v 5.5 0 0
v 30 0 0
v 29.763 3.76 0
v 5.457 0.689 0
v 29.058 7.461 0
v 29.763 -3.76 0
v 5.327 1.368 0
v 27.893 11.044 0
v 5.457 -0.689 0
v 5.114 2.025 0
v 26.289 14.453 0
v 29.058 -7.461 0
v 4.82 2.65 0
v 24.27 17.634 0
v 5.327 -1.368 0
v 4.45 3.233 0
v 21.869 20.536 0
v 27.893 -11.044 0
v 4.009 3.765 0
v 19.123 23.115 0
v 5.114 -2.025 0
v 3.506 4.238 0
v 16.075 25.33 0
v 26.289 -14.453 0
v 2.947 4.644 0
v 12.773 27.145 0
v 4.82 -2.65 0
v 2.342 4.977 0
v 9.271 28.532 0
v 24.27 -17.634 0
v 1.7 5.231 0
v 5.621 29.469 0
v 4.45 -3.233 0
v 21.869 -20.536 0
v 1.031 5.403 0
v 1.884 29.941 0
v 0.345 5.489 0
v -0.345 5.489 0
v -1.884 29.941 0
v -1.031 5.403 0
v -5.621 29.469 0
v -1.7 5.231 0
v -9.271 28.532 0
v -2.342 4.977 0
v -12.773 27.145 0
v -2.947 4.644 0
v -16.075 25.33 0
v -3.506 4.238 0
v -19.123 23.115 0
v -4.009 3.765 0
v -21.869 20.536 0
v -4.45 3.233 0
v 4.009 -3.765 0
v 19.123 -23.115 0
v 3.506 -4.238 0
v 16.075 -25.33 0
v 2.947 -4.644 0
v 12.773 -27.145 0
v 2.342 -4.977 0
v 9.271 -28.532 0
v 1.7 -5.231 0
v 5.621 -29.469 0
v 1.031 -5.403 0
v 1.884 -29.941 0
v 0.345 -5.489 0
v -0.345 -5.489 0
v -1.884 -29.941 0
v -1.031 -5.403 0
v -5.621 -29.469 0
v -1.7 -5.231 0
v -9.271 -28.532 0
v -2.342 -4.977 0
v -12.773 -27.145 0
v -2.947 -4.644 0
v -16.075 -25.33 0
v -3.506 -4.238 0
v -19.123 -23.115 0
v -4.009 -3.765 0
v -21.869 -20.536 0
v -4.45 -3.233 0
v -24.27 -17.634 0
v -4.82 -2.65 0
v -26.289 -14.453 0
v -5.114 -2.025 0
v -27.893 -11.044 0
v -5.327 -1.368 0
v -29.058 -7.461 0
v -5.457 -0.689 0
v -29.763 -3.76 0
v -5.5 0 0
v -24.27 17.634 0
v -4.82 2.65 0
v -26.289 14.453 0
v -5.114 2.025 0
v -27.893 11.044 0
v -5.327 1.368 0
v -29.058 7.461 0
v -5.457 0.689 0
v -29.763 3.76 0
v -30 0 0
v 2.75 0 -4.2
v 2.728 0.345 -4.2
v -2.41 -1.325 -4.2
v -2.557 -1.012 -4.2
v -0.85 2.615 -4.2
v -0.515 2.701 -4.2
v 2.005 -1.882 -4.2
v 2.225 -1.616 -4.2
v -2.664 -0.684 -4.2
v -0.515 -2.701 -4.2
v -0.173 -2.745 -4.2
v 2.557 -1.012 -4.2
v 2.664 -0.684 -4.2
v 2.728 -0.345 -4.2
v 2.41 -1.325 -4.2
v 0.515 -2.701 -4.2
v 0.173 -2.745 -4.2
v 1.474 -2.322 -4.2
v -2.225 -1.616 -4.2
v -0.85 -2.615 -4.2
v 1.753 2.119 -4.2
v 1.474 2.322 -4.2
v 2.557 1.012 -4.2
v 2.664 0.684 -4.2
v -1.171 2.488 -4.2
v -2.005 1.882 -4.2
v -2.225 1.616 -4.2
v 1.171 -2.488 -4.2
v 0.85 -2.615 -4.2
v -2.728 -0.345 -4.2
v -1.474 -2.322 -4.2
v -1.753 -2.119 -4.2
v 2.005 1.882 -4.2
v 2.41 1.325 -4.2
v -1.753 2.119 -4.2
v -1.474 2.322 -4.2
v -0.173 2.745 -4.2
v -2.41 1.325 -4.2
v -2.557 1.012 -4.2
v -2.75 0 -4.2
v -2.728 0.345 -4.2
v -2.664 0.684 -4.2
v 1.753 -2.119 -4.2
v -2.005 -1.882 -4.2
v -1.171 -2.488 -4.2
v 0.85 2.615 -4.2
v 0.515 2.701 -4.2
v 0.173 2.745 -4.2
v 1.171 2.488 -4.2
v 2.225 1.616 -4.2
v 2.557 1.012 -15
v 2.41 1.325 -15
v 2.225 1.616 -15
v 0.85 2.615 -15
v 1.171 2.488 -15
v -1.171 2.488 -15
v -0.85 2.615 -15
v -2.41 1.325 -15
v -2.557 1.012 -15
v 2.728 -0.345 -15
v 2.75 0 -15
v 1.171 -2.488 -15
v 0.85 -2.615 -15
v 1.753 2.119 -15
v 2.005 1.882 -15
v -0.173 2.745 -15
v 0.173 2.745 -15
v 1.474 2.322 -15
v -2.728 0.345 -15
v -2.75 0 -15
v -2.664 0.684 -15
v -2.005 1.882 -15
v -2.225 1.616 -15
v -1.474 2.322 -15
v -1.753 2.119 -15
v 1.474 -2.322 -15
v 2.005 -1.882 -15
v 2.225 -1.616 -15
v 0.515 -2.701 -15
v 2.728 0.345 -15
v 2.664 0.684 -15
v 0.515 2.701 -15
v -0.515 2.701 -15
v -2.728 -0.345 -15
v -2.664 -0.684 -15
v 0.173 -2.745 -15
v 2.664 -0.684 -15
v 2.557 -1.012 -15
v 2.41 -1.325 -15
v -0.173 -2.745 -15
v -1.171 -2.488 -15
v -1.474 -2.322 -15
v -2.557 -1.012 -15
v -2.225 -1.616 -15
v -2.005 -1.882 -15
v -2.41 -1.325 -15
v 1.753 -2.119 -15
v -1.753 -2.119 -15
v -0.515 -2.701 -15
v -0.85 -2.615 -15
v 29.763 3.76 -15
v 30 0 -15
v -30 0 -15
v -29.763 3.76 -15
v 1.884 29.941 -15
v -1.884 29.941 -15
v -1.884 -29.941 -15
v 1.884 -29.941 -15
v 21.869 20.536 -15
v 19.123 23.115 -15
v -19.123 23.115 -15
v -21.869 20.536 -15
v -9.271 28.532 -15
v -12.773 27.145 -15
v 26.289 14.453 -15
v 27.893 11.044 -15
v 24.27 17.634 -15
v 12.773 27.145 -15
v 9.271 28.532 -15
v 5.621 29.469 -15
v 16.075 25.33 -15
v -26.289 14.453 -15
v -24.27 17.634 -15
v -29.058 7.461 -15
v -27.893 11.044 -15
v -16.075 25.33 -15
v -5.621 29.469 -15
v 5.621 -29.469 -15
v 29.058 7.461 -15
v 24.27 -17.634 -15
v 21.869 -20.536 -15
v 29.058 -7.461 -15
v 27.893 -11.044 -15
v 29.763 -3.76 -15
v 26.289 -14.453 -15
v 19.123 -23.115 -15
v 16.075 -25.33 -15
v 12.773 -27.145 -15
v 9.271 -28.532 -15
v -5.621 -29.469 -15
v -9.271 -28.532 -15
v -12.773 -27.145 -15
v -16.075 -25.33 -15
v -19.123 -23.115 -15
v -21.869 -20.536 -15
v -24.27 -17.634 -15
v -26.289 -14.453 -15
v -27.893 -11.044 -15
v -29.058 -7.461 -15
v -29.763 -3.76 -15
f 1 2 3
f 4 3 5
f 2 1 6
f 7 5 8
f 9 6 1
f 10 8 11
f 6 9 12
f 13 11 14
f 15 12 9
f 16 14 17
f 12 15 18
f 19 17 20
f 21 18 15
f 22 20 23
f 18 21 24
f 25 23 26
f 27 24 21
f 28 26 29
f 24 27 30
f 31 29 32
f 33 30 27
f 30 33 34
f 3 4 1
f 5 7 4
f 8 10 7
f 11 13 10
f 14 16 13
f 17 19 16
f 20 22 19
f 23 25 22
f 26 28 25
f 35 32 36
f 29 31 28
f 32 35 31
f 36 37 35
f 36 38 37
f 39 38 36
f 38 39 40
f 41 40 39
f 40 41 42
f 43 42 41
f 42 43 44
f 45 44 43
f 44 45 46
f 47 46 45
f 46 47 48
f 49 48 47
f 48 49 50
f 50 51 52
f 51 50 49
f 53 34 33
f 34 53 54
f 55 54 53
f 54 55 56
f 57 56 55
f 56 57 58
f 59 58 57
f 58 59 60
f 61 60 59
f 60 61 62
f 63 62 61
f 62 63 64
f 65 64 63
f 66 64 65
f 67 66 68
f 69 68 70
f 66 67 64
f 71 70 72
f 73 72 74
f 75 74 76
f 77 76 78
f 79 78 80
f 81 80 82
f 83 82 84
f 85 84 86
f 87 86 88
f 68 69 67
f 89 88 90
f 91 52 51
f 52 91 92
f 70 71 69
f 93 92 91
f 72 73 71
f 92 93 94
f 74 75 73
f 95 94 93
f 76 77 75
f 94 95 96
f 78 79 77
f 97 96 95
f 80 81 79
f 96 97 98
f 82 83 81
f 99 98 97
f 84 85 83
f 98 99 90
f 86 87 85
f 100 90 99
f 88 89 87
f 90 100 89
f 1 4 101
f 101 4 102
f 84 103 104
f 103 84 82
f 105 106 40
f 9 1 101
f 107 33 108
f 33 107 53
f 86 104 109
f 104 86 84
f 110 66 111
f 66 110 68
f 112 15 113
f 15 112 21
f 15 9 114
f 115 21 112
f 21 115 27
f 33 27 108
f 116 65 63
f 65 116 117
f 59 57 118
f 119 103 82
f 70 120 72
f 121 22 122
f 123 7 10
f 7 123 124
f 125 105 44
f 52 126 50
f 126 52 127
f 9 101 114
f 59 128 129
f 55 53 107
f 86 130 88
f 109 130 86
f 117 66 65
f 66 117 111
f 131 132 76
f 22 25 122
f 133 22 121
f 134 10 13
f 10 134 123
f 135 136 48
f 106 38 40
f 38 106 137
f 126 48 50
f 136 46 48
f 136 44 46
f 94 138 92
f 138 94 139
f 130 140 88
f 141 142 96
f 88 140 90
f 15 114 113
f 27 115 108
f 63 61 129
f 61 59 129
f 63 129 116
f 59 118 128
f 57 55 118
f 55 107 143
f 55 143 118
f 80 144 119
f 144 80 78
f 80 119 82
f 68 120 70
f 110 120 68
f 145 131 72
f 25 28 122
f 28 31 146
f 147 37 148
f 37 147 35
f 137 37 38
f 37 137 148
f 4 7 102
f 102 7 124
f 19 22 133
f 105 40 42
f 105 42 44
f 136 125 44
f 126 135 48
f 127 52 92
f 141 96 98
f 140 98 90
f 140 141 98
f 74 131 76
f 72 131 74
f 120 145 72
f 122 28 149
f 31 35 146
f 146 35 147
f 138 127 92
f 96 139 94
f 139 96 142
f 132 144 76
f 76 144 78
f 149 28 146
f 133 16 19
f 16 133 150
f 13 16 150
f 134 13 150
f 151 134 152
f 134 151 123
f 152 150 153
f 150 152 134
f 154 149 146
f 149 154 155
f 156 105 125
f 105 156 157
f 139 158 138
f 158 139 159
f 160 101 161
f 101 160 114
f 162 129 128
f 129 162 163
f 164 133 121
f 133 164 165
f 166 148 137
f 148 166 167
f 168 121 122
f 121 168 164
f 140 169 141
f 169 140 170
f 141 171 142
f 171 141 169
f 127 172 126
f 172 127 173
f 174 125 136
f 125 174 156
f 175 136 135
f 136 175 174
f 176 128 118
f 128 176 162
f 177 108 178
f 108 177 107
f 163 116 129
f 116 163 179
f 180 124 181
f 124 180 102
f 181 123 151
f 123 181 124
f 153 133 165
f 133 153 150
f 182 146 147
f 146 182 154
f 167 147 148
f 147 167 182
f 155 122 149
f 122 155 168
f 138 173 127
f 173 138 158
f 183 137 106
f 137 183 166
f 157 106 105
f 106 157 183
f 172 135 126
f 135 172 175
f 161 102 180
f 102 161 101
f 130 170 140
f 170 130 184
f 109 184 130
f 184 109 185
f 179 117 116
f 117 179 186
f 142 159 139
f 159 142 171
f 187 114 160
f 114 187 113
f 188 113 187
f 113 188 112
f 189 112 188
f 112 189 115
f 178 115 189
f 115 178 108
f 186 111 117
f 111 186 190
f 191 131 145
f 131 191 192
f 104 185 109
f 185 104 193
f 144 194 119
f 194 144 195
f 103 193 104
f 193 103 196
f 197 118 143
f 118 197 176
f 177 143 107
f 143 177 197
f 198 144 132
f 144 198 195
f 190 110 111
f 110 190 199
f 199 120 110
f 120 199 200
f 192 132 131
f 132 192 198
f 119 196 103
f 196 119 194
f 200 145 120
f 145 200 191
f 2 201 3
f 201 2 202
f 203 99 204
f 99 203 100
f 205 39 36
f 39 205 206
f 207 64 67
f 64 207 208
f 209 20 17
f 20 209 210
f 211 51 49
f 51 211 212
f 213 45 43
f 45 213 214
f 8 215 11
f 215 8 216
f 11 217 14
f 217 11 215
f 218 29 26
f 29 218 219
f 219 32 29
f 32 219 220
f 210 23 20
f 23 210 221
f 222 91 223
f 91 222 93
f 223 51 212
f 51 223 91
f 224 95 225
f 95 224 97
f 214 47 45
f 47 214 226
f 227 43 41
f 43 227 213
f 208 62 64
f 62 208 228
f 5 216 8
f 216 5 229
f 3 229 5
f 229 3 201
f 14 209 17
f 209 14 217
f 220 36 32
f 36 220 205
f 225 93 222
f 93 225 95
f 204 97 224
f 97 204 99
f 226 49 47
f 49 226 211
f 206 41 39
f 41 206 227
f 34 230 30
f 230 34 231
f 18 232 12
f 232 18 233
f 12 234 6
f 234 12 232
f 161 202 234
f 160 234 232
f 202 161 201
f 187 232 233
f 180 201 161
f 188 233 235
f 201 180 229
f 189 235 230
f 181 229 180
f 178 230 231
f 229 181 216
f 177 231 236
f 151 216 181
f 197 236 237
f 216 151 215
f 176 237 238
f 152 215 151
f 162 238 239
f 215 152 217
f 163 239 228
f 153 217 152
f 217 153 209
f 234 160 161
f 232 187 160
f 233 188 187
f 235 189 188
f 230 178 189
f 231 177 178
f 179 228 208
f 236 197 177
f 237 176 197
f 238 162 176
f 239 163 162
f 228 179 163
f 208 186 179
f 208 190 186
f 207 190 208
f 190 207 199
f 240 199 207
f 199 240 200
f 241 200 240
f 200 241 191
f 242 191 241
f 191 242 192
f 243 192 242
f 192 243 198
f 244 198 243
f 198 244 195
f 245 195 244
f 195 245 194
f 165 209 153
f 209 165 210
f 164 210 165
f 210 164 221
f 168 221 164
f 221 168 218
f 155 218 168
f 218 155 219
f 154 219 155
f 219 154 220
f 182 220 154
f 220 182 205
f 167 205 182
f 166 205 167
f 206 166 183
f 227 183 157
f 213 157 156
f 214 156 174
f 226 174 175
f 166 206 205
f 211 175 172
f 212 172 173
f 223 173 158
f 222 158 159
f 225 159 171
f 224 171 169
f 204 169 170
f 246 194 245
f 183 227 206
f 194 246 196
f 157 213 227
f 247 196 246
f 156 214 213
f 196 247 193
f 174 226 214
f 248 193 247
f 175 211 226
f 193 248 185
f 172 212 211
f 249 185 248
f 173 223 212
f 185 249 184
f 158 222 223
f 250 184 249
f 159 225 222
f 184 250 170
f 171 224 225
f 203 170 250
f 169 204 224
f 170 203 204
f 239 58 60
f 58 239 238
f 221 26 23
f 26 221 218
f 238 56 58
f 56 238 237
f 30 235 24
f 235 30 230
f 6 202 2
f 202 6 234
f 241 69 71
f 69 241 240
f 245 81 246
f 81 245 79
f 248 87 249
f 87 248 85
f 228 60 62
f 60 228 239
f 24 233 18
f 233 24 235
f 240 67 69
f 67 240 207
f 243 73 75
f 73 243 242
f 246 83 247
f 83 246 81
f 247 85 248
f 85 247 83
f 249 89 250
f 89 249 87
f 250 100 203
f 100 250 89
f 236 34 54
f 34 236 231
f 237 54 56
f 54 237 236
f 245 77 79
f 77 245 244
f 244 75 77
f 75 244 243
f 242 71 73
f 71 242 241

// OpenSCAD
$fn = 50;


difference() {
	union() {
		translate(v = [0, 0, -15.0000000000]) {
			cylinder(h = 15, r = 30.0000000000);
		}
	}
	union() {
		translate(v = [0, 0, 0]) {
			rotate(a = [0, 0, 0]) {
				difference() {
					union() {
						translate(v = [0, 0, -18.0000000000]) {
							cylinder(h = 18, r = 2.2500000000);
						}
						translate(v = [0, 0, -4.2000000000]) {
							cylinder(h = 4.2000000000, r1 = 2.7500000000, r2 = 5.5000000000);
						}
						translate(v = [0, 0, -18.0000000000]) {
							cylinder(h = 18, r = 2.7500000000);
						}
						translate(v = [0, 0, -18.0000000000]) {
							cylinder(h = 18, r = 2.2500000000);
						}
					}
					union();
				}
			}
		}
	}
}
